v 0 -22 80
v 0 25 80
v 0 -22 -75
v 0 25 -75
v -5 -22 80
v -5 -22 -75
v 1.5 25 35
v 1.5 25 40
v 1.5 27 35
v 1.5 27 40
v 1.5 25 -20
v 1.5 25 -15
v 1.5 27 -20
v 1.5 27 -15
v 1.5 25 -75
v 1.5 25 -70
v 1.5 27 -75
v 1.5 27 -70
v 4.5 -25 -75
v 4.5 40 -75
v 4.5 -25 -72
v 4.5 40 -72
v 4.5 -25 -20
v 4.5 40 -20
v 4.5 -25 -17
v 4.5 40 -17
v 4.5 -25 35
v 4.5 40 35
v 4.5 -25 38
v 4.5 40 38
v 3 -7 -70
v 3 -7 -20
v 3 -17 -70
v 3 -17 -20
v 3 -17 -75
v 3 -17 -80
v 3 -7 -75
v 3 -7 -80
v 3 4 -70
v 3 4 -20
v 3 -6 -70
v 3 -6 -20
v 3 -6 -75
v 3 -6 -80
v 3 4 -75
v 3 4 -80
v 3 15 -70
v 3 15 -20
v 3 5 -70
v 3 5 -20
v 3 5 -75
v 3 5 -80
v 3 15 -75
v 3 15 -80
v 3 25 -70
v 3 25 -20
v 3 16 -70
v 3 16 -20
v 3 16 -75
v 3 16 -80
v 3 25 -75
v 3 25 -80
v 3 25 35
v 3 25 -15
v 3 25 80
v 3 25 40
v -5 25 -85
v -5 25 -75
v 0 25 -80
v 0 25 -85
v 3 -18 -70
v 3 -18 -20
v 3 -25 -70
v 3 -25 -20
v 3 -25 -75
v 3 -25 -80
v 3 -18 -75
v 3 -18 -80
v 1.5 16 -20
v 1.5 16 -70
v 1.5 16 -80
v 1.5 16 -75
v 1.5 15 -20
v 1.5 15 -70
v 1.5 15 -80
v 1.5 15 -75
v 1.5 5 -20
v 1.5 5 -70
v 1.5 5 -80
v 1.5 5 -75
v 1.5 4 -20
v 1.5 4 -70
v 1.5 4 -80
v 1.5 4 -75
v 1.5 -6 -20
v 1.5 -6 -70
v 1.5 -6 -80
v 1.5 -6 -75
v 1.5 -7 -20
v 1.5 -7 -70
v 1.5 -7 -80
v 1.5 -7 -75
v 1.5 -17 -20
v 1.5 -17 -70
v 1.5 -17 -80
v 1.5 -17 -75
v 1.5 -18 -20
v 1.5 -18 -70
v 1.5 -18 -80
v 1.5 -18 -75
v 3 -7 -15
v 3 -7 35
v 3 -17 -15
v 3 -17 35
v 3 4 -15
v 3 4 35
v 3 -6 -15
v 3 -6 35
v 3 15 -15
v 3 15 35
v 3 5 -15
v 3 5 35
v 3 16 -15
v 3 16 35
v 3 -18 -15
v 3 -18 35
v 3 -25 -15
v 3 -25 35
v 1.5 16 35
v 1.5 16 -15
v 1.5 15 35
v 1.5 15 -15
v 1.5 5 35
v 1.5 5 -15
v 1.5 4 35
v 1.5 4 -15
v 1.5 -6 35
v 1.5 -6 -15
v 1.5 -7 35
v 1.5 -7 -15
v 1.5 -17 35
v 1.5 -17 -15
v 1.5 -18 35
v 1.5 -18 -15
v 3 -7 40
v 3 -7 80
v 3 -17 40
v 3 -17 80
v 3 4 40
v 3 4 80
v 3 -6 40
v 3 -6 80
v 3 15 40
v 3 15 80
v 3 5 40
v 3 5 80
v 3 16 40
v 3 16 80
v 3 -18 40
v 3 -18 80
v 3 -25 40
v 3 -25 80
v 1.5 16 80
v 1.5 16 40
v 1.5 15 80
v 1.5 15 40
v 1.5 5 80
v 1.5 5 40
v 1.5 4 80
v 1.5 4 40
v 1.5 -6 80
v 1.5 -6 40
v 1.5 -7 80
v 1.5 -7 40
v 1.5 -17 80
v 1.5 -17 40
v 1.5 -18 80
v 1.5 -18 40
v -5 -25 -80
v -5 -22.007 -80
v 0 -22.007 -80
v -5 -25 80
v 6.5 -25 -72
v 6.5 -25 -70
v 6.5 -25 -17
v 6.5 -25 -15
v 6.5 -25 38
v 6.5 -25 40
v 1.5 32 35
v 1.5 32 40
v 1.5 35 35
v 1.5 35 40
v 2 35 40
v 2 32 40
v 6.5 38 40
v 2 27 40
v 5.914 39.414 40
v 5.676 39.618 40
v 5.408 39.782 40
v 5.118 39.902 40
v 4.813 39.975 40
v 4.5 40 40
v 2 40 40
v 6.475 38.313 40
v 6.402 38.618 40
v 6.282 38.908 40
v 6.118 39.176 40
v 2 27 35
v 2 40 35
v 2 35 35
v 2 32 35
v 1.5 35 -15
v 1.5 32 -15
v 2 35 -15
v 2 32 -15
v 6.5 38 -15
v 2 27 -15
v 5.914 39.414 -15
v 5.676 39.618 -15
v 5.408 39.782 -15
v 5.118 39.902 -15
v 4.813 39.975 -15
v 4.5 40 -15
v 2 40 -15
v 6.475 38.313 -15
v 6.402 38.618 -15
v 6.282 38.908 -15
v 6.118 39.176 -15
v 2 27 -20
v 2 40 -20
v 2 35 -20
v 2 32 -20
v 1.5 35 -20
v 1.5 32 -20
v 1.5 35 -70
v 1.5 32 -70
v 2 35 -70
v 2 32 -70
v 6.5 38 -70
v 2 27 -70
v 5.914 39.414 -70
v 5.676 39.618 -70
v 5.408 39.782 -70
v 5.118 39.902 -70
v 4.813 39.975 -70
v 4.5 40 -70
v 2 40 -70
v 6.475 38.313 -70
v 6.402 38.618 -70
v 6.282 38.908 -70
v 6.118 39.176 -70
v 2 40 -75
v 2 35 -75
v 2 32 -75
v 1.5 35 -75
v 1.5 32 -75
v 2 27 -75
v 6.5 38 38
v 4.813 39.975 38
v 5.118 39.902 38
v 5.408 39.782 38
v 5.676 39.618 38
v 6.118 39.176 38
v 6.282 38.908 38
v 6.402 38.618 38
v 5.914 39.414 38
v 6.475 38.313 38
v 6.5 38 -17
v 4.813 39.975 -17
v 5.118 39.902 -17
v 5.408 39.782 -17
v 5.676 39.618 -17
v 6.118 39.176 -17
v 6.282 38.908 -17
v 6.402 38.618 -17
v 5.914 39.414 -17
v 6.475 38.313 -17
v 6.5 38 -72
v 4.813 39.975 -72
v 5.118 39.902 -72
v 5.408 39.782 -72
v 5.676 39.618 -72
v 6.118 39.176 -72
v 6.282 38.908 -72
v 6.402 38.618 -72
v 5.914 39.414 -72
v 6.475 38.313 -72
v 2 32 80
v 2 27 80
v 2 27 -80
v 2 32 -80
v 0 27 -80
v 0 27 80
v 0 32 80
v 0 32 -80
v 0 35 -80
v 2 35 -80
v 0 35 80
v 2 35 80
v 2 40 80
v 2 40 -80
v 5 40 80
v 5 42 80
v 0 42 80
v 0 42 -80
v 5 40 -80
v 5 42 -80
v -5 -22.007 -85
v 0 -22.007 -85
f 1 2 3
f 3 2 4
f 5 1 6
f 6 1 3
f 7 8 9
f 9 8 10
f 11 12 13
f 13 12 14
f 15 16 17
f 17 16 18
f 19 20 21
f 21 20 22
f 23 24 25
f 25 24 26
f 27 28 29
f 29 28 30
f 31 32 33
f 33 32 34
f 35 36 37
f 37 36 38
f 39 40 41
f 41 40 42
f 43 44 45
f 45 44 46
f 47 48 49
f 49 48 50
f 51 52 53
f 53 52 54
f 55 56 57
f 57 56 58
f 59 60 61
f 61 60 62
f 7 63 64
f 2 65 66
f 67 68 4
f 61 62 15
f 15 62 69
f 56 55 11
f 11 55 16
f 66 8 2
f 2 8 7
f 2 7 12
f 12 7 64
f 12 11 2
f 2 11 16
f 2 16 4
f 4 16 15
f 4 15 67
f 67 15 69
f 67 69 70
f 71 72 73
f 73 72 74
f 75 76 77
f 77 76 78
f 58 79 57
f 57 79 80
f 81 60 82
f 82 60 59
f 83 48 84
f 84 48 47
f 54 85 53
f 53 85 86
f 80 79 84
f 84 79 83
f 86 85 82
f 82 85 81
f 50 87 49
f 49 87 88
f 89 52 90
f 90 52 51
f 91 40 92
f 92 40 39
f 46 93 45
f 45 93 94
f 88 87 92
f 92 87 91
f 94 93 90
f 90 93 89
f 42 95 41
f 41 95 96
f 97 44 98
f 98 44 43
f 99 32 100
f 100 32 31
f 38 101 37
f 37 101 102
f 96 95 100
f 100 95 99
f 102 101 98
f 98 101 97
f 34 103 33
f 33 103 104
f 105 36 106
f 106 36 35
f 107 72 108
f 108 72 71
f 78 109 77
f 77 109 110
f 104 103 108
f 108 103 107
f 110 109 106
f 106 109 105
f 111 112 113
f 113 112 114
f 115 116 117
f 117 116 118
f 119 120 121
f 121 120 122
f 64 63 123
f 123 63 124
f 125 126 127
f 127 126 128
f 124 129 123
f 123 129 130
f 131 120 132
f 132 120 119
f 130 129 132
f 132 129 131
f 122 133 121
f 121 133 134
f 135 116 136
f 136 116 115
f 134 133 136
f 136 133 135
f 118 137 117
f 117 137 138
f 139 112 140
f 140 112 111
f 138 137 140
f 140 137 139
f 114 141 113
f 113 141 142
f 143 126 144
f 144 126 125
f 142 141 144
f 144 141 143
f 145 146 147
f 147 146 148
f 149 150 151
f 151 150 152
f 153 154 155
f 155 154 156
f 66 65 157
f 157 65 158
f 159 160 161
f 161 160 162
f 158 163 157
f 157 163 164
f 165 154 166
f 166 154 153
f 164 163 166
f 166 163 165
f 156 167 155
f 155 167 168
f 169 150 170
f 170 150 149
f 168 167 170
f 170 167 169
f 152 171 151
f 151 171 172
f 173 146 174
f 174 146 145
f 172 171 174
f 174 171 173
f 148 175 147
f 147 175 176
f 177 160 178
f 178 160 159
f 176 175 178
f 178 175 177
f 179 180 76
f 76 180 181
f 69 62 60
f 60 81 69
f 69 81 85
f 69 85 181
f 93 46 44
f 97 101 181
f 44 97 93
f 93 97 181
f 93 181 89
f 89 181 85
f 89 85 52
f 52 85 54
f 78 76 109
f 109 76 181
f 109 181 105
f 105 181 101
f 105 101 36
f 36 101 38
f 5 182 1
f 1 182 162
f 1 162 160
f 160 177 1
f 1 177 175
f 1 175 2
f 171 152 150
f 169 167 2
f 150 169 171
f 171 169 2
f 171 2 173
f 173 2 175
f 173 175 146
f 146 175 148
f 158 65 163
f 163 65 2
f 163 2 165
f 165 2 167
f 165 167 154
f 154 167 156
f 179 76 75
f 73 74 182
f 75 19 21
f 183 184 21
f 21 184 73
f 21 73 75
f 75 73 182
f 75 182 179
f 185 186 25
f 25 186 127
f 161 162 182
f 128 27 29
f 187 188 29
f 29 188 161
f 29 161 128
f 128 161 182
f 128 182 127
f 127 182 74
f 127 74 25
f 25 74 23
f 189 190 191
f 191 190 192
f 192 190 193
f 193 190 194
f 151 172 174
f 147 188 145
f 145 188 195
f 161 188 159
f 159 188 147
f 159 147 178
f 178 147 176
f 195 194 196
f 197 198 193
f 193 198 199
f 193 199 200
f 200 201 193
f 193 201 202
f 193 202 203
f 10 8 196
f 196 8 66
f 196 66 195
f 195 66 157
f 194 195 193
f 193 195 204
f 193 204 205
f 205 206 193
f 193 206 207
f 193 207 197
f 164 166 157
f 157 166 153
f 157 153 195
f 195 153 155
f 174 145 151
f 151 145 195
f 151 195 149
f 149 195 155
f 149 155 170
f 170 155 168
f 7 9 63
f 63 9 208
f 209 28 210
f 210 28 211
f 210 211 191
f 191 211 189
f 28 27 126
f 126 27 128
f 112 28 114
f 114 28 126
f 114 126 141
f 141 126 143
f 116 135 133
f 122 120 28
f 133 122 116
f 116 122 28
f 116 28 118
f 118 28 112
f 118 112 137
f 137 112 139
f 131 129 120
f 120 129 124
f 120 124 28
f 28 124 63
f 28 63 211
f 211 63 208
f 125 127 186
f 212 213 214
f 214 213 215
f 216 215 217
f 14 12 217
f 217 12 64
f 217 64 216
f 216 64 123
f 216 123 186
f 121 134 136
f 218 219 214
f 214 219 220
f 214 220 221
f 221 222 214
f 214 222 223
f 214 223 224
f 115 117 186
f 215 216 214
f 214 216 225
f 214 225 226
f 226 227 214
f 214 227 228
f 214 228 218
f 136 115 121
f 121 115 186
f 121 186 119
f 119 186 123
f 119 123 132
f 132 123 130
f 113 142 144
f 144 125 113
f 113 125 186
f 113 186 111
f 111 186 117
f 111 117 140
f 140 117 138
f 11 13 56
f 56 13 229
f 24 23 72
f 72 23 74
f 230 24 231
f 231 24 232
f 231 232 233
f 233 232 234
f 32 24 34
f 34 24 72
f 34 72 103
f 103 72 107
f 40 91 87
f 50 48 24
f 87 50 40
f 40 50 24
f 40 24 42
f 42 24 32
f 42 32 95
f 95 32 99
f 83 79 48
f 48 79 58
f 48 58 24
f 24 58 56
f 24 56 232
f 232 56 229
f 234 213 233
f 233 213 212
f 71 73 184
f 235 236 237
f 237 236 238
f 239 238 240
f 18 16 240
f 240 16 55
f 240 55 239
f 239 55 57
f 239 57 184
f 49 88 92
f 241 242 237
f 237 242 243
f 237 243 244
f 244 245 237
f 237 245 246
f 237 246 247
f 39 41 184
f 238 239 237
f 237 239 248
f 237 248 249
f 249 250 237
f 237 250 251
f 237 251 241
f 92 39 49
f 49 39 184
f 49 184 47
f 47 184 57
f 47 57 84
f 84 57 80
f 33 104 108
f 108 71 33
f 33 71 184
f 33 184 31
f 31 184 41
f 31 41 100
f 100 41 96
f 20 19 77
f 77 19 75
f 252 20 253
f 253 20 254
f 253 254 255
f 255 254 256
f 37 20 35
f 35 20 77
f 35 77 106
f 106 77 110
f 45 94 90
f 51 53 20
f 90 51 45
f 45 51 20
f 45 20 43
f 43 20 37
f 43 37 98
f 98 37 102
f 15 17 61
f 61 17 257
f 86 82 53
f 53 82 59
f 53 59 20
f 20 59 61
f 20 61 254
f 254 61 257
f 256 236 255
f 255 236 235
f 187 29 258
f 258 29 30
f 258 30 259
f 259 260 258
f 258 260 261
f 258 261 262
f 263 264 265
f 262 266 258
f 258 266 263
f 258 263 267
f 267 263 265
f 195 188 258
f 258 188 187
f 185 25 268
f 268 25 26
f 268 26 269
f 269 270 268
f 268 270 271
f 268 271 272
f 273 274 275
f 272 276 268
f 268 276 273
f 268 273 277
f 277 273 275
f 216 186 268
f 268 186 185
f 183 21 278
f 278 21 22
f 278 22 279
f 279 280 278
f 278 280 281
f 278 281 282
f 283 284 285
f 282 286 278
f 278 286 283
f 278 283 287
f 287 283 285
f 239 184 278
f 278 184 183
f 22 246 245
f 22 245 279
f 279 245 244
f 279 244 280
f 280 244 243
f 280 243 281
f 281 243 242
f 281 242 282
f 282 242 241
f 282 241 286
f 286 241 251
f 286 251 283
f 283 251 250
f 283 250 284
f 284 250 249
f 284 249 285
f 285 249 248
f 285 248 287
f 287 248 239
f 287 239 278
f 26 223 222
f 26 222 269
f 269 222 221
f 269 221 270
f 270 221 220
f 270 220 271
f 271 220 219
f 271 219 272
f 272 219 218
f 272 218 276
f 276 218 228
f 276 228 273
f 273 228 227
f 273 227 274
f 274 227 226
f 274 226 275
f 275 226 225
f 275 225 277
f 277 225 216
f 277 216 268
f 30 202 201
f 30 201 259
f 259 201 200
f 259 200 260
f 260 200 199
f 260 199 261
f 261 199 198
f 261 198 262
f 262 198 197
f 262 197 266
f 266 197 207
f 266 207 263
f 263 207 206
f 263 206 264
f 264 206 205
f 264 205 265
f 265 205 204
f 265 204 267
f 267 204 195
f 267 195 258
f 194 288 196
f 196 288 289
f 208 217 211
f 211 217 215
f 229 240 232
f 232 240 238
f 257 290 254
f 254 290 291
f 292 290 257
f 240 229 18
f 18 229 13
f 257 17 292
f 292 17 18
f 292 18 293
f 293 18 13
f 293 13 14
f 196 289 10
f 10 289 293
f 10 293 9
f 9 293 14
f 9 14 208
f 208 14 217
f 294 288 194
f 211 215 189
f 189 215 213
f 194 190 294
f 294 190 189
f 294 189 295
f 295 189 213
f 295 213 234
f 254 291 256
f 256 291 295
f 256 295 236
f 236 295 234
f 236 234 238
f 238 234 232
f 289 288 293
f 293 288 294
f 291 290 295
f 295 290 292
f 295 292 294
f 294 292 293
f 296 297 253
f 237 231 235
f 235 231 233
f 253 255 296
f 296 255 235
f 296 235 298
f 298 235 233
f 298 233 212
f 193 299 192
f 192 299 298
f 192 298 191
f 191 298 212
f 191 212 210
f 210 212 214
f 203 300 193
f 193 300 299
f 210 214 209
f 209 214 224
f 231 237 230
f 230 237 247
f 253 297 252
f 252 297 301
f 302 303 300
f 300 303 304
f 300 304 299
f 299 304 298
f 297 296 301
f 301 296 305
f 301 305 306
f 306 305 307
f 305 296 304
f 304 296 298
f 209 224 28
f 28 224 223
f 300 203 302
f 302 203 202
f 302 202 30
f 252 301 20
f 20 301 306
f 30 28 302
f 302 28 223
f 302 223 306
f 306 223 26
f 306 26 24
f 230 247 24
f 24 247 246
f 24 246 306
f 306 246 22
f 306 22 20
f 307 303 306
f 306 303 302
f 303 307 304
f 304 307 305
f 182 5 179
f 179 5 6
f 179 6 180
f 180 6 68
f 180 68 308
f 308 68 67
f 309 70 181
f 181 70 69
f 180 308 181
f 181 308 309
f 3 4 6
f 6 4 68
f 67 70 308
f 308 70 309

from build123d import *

# Parameters (mm, degrees)
SKETCH1_W           = 160
SKETCH1_H           = 50
BOSS_EXTRUDE1_DEPTH = 3
SKETCH3_W           = 160
SKETCH3_H           = 1
CUT_EXTRUDE1_DEPTH  = 1.5
SKETCH4_W           = 5
SKETCH4_H           = 65
BOSS_EXTRUDE2_DEPTH = 1.5
SKETCH5_W           = 2
SKETCH5_H           = 65
BOSS_EXTRUDE3_DEPTH = 2
FILLET1_R           = 2
SKETCH8_W           = 160
SKETCH8_H           = 5
BOSS_EXTRUDE4_DEPTH = 2
SKETCH6_W           = 5
SKETCH6_H           = 160
BOSS_EXTRUDE5_DEPTH = 2
SKETCH10_W          = 160
SKETCH10_H          = 3
BOSS_EXTRUDE6_DEPTH = 5
SKETCH13_W          = 10
SKETCH13_H          = 47.007429362
BOSS_EXTRUDE7_DEPTH = 5


with BuildPart() as part:
    # Sketch1 → Boss-Extrude1 (new body)
    with BuildSketch(Plane(origin=(0, 0, 0), x_dir=(0, 0, -1), z_dir=(1, 0, 0))):
        Rectangle(SKETCH1_W, SKETCH1_H)
    extrude(amount=BOSS_EXTRUDE1_DEPTH)

    # Sketch3 → Cut-Extrude1 (cut)
    with BuildSketch(Plane(origin=(3, 0, 0), x_dir=(0, 0, -1), z_dir=(1, 0, 0))):
        with Locations((0, -17.5)):
            Rectangle(SKETCH3_W, SKETCH3_H)
        with Locations((0, -6.5)):
            Rectangle(SKETCH3_W, SKETCH3_H)
        with Locations((0, 4.5)):
            Rectangle(SKETCH3_W, SKETCH3_H)
        with Locations((0, 15.5)):
            Rectangle(SKETCH3_W, SKETCH3_H)
    extrude(amount=-CUT_EXTRUDE1_DEPTH, mode=Mode.SUBTRACT)

    # Sketch4 → Boss-Extrude2 (add, symmetric)
    with BuildSketch(Plane(origin=(3, 0, 0), x_dir=(0, 0, -1), z_dir=(1, 0, 0))):
        with Locations((-37.5, 7.5)):
            Rectangle(SKETCH4_W, SKETCH4_H)
        with Locations((17.5, 7.5)):
            Rectangle(SKETCH4_W, SKETCH4_H)
        with Locations((72.5, 7.5)):
            Rectangle(SKETCH4_W, SKETCH4_H)
    extrude(amount=BOSS_EXTRUDE2_DEPTH, both=True)

    # Sketch5 → Boss-Extrude3 (add)
    with BuildSketch(Plane(origin=(4.5, 0, 0), x_dir=(0, 0, -1), z_dir=(1, 0, 0))):
        with Locations((-39, 7.5)):
            Rectangle(SKETCH5_W, SKETCH5_H)
        with Locations((16, 7.5)):
            Rectangle(SKETCH5_W, SKETCH5_H)
        with Locations((71, 7.5)):
            Rectangle(SKETCH5_W, SKETCH5_H)
    extrude(amount=BOSS_EXTRUDE3_DEPTH)

    # Fillet1
    fillet1_edges = [part.edges().sort_by_distance(p)[0] for p in [
        (6.5, 40, -71),
        (6.5, 40, -16),
        (6.5, 40, 39),
    ]]
    fillet(fillet1_edges, radius=FILLET1_R)

    # Sketch8 → Boss-Extrude4 (add)
    with BuildSketch(Plane.ZY):
        with Locations((0, 29.5)):
            Rectangle(SKETCH8_W, SKETCH8_H)
        with Locations((0, 37.5)):
            Rectangle(SKETCH8_W, SKETCH8_H)
    extrude(amount=-BOSS_EXTRUDE4_DEPTH)

    # Sketch6 → Boss-Extrude5 (add)
    with BuildSketch(Plane(origin=(0, 40, 0), x_dir=(1, 0, 0), z_dir=(0, 1, 0))):
        with Locations((2.5, 0)):
            Rectangle(SKETCH6_W, SKETCH6_H)
    extrude(amount=BOSS_EXTRUDE5_DEPTH)

    # Sketch10 → Boss-Extrude6 (add)
    with BuildSketch(Plane.ZY):
        with Locations((0, -23.5)):
            Rectangle(SKETCH10_W, SKETCH10_H)
    extrude(amount=BOSS_EXTRUDE6_DEPTH)

    # Sketch13 → Boss-Extrude7 (add)
    with BuildSketch(Plane.ZY):
        with Locations((-80, 1.496285319)):
            Rectangle(SKETCH13_W, SKETCH13_H)
    extrude(amount=BOSS_EXTRUDE7_DEPTH)


solid = part.part
